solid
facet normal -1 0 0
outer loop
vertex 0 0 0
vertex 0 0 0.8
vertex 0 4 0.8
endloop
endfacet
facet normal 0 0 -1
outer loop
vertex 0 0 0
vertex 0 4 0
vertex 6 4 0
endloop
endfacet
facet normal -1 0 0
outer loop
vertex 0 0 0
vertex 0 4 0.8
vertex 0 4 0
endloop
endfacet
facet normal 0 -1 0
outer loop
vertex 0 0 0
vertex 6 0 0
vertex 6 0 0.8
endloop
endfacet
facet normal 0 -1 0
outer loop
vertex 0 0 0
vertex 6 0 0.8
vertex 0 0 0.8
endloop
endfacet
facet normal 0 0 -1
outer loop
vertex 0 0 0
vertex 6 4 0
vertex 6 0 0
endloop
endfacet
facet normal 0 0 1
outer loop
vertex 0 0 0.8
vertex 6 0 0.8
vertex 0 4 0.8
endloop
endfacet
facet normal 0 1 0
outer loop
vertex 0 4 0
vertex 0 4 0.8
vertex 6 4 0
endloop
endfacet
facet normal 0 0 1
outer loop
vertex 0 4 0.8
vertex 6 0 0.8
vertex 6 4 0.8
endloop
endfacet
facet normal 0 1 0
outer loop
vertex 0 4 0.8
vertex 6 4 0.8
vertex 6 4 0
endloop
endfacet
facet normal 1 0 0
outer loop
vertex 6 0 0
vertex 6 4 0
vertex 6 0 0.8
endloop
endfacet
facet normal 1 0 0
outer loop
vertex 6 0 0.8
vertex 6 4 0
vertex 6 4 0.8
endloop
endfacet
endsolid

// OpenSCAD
/* Warning, this is a very basic generator with a lot of approximation 
input data : [WQFN, S9B, 6x4x0.8mm, 30, , A, C04-21403A]
generated by com.zoubworld.electronics.cad.model3d.Basic
Date : Sun Feb 15 10:50:49 CET 2026
*/

//body
color("black")
translate([0,0,0])
cube([6.0,4.0,0.8], center=false);
